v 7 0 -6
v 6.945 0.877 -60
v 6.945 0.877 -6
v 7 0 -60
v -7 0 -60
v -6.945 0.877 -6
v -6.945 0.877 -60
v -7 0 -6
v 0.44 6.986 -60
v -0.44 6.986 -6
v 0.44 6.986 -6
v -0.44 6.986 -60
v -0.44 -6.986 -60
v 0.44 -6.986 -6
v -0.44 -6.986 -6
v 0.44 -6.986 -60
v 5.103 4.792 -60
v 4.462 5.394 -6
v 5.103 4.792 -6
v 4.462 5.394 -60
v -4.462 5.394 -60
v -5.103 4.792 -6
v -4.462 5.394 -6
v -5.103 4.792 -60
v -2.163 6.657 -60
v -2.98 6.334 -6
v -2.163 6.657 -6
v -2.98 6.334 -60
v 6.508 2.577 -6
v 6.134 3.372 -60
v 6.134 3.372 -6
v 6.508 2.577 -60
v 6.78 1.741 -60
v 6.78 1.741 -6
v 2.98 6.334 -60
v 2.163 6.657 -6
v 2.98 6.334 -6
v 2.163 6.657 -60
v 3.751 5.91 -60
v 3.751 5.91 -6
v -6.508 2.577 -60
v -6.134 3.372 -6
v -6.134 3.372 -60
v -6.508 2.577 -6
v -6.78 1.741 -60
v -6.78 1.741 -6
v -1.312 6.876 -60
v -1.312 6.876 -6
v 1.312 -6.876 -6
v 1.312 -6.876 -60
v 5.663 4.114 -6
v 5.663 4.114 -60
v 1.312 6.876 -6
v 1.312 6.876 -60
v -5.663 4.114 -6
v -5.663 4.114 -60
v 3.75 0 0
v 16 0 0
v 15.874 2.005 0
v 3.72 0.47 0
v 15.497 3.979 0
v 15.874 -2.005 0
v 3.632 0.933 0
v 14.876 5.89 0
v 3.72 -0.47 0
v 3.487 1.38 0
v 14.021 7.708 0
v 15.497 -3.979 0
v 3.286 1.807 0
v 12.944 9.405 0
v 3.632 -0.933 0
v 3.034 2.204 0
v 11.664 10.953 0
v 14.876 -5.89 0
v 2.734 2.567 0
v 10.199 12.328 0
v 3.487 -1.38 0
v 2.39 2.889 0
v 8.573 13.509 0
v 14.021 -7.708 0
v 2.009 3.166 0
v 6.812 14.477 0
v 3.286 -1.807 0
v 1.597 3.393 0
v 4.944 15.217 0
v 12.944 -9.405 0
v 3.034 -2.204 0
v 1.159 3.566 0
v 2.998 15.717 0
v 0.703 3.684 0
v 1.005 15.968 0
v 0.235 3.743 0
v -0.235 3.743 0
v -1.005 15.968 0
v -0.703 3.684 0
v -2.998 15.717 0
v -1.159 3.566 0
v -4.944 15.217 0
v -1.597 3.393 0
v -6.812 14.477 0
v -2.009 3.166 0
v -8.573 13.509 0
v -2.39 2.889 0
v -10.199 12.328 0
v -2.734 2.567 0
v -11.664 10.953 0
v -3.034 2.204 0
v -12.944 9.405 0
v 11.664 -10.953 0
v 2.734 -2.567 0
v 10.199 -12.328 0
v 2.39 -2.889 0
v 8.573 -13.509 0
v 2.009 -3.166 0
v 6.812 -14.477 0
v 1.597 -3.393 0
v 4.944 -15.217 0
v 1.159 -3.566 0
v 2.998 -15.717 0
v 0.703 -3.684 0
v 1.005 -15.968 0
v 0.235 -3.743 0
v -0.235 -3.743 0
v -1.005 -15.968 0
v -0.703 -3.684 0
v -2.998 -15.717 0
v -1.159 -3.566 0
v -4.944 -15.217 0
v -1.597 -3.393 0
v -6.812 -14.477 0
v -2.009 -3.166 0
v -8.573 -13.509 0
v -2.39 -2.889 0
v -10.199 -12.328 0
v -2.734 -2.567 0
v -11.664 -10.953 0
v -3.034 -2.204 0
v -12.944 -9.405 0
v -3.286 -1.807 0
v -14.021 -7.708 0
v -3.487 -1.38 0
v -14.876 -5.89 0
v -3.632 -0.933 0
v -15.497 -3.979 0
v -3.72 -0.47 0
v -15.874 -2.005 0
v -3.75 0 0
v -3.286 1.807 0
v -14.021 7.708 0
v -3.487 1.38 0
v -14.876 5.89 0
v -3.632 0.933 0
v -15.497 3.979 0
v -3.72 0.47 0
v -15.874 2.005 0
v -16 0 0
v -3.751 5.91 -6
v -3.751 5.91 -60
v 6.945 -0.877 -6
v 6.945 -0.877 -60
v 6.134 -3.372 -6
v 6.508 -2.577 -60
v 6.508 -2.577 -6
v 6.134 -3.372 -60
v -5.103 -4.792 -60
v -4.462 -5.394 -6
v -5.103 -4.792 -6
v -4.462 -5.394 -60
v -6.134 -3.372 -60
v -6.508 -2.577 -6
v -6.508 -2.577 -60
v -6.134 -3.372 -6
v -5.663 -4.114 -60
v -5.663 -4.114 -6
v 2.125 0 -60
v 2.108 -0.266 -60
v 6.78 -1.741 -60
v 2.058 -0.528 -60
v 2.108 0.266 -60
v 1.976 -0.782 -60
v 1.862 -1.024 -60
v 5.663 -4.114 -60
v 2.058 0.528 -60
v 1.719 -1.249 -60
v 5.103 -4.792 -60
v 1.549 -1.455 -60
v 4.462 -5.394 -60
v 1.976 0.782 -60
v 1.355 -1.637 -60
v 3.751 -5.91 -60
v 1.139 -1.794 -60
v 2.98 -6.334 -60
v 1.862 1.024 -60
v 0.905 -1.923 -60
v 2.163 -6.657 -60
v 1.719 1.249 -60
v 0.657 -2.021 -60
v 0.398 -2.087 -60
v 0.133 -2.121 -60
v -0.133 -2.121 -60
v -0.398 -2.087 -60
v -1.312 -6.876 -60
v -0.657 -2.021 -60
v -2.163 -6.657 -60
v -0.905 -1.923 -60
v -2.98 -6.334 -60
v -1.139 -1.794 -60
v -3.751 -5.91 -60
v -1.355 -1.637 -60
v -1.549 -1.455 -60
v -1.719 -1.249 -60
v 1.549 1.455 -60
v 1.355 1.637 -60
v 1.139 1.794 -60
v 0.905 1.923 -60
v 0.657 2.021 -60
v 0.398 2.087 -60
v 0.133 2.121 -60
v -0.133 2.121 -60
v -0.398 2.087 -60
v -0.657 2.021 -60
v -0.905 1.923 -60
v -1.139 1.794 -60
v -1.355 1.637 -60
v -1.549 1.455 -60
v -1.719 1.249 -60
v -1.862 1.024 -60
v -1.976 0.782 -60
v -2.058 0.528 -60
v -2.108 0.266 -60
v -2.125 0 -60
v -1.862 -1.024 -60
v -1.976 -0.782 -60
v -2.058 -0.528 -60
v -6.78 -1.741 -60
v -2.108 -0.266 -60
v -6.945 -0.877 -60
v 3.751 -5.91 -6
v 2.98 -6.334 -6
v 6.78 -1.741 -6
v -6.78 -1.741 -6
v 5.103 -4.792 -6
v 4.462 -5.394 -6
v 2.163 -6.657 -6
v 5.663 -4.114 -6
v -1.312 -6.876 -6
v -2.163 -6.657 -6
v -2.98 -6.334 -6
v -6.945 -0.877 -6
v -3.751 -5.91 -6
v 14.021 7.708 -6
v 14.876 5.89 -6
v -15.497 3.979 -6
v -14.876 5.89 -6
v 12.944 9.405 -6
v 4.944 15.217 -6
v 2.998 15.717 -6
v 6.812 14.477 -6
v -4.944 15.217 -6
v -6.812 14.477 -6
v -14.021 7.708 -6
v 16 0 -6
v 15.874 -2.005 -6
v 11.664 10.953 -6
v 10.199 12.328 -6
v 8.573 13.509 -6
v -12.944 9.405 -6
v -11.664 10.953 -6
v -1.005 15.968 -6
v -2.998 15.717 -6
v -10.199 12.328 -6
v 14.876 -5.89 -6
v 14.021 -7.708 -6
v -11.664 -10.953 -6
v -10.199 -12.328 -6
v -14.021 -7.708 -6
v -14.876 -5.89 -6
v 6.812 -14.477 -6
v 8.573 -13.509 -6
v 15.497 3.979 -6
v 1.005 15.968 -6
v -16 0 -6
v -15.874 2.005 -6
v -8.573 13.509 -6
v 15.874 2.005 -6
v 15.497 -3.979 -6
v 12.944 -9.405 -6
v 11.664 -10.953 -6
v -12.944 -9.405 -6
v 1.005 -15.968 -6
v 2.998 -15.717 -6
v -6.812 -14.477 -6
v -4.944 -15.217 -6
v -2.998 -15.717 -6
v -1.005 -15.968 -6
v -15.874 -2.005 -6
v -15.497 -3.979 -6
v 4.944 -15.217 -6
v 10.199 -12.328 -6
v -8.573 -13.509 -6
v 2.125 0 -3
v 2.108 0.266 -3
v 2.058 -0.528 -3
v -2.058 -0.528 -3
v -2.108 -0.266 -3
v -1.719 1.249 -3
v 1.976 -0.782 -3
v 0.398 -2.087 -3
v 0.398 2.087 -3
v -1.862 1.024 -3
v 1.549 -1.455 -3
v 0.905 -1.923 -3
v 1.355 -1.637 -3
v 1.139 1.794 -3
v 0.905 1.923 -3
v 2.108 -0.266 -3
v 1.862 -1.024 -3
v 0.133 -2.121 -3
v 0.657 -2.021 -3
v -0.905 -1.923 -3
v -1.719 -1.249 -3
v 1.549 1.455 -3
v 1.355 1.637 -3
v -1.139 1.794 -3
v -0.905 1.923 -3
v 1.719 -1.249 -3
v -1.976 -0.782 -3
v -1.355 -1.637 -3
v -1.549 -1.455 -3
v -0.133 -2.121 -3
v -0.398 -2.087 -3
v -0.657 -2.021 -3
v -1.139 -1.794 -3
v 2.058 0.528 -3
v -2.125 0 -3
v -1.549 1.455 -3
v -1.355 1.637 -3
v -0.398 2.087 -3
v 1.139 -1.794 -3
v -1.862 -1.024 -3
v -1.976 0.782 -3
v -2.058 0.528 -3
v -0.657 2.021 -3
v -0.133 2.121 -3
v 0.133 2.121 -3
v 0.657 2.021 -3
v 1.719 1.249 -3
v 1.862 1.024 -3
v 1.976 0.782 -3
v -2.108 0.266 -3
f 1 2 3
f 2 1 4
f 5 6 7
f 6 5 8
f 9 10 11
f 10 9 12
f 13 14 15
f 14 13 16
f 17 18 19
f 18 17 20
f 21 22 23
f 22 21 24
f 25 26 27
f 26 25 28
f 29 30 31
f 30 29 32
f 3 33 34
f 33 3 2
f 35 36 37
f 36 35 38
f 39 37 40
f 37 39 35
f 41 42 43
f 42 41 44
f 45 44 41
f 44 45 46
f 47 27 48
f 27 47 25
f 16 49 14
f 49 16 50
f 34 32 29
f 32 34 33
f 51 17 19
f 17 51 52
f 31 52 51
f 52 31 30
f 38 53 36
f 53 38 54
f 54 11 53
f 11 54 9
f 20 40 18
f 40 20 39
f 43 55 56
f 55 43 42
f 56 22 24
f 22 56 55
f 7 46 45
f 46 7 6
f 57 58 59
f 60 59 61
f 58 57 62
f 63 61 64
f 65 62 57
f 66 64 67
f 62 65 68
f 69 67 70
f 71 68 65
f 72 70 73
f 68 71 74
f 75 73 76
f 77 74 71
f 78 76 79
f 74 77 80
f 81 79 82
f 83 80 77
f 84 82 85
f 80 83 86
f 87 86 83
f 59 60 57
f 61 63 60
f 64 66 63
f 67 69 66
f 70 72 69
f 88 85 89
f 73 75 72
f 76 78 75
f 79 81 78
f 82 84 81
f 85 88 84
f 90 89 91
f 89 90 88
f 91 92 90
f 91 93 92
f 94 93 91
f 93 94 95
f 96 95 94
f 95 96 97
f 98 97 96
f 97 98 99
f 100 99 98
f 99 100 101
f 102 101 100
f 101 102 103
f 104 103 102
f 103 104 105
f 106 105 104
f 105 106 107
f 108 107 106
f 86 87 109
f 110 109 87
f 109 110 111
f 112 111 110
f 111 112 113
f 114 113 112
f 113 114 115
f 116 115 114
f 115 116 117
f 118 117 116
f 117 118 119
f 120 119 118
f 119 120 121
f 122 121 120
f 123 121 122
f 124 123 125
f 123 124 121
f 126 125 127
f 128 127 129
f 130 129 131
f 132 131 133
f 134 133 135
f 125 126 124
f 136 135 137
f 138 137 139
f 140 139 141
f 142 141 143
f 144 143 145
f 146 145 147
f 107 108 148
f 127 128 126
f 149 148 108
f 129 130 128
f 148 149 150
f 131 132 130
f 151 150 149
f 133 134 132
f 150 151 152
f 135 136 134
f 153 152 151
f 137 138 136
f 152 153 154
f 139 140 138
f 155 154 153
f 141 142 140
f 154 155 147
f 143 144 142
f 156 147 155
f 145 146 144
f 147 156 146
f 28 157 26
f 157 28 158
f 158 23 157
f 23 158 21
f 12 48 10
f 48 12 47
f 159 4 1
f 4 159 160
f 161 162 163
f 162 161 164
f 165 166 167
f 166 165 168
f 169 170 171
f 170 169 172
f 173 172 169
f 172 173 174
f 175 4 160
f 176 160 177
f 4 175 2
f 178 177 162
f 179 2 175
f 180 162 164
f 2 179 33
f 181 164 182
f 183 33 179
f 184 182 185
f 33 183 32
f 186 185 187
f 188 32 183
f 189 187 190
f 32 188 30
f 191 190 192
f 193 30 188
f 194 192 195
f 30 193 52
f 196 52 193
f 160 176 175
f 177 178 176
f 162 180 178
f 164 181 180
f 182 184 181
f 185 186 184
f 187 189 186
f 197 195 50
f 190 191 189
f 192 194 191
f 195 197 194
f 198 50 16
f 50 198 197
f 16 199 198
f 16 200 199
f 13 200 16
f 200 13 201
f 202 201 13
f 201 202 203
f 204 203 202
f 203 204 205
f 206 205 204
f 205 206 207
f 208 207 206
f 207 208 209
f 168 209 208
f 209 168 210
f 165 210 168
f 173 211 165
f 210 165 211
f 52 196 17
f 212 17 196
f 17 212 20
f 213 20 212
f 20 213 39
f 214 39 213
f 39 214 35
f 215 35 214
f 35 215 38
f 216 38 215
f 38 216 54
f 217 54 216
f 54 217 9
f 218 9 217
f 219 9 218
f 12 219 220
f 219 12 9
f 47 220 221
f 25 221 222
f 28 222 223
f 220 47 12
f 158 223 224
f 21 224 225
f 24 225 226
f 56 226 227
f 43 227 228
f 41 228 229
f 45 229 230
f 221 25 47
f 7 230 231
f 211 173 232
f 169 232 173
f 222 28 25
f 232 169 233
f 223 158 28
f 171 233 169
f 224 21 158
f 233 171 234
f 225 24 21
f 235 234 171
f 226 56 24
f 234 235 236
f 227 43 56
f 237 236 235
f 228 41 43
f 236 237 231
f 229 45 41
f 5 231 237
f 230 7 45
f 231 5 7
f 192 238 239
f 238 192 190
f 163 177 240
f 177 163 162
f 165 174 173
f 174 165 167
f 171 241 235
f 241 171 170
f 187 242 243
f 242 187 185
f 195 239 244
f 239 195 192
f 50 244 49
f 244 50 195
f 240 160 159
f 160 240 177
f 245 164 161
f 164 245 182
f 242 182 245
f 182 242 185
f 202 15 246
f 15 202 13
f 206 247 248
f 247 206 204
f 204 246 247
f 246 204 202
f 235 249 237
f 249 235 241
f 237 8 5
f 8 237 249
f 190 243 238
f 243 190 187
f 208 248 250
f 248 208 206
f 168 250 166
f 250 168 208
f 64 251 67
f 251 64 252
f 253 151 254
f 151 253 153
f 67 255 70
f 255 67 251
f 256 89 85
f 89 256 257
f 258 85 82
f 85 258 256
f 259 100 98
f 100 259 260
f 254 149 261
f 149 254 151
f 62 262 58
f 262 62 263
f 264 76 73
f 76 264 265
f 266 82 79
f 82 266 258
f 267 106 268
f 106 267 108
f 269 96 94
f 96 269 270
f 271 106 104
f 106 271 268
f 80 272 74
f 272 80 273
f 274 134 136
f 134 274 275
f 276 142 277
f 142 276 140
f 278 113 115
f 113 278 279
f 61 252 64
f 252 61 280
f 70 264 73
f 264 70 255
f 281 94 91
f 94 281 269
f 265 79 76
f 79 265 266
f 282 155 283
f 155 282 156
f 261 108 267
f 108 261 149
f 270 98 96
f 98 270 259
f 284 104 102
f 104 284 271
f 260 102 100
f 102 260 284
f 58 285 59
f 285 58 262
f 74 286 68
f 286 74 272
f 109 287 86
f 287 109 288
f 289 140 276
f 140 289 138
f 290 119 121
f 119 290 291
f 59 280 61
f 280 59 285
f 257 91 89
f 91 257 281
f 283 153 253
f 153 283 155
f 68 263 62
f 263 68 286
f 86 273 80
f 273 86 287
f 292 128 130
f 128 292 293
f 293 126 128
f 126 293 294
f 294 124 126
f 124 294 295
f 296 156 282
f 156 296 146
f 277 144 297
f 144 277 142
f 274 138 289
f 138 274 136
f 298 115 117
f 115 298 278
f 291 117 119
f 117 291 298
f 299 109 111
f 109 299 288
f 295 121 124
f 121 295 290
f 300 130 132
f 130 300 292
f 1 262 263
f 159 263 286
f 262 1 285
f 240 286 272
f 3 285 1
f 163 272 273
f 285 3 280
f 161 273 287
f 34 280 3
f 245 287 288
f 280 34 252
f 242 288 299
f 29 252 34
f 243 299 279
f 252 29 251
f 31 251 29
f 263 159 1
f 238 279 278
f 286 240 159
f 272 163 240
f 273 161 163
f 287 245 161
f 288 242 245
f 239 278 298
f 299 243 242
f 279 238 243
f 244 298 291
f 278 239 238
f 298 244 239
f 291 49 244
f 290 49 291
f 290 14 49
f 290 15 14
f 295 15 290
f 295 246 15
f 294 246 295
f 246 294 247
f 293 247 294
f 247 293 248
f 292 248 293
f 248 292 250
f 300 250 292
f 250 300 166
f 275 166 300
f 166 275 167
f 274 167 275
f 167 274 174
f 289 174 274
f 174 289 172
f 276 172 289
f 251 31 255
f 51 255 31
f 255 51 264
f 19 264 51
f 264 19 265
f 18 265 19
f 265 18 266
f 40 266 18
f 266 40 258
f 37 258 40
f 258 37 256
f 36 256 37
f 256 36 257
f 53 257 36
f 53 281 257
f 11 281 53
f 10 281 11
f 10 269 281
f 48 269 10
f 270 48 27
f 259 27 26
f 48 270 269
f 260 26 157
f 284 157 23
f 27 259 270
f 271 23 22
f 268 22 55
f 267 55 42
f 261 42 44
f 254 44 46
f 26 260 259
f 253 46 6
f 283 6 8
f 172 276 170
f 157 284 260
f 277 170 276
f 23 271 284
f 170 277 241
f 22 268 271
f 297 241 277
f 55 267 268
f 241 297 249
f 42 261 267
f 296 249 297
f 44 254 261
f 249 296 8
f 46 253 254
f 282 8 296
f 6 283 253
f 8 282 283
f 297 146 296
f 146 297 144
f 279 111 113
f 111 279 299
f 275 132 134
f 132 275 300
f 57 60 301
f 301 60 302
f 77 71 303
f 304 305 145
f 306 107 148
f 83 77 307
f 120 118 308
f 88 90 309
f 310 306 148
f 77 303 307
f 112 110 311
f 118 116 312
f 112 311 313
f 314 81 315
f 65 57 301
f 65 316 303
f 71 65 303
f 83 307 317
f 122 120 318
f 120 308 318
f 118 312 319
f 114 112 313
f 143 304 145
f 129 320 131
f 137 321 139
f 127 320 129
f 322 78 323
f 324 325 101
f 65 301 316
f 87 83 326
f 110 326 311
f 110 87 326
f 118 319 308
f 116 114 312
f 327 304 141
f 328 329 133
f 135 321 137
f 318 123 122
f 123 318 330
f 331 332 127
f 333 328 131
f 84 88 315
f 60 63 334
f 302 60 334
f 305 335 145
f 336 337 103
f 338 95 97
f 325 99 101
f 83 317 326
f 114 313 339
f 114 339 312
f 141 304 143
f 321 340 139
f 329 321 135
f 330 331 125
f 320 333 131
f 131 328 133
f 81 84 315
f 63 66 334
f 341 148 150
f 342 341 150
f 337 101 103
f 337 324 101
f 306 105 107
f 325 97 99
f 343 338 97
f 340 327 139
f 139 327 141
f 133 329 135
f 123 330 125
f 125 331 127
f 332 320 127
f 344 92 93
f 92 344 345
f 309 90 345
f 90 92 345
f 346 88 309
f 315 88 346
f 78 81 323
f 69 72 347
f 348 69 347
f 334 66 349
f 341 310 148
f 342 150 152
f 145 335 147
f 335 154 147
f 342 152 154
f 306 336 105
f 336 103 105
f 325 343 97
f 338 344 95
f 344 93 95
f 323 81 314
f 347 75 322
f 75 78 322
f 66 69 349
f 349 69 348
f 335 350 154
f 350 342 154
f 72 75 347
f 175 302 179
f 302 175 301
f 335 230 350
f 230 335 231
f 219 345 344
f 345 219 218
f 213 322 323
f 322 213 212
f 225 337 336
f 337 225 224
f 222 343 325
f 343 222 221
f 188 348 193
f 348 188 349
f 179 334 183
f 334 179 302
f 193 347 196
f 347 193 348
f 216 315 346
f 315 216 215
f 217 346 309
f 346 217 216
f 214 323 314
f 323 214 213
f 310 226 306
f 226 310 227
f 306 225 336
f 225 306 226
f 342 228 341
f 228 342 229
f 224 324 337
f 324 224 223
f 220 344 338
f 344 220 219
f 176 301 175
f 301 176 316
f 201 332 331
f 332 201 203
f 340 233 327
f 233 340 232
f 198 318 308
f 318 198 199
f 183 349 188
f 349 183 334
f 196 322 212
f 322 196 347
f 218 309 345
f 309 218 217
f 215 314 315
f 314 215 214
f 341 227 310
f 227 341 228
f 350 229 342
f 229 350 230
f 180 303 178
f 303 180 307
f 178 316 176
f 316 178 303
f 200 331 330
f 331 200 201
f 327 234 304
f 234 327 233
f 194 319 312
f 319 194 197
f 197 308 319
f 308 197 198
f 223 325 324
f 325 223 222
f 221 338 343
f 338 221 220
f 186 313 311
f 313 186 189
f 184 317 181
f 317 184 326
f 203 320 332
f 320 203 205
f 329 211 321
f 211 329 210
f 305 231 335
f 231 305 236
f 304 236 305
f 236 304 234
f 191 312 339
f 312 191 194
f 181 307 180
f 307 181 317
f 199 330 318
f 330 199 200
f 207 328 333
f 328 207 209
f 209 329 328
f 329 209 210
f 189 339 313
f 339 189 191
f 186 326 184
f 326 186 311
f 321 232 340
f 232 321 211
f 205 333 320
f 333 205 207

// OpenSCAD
$fn = 50;


difference() {
	union() {
		translate(v = [0, 0, -60.0000000000]) {
			cylinder(h = 60, r = 7.0000000000);
		}
		translate(v = [0, 0, -6.0000000000]) {
			cylinder(h = 6, r = 16.0000000000);
		}
	}
	union() {
		translate(v = [0, 0, 0]) {
			rotate(a = [0, 0, 0]) {
				difference() {
					union() {
						#translate(v = [0, 0, -60.0000000000]) {
							cylinder(h = 60, r = 2.0000000000);
						}
						#translate(v = [0, 0, -3]) {
							cylinder(h = 3, r1 = 2.1250000000, r2 = 3.7500000000);
						}
						#translate(v = [0, 0, -60.0000000000]) {
							cylinder(h = 60, r = 2.1250000000);
						}
						#translate(v = [0, 0, -60.0000000000]) {
							cylinder(h = 60, r = 2.0000000000);
						}
					}
					union();
				}
			}
		}
	}
}
